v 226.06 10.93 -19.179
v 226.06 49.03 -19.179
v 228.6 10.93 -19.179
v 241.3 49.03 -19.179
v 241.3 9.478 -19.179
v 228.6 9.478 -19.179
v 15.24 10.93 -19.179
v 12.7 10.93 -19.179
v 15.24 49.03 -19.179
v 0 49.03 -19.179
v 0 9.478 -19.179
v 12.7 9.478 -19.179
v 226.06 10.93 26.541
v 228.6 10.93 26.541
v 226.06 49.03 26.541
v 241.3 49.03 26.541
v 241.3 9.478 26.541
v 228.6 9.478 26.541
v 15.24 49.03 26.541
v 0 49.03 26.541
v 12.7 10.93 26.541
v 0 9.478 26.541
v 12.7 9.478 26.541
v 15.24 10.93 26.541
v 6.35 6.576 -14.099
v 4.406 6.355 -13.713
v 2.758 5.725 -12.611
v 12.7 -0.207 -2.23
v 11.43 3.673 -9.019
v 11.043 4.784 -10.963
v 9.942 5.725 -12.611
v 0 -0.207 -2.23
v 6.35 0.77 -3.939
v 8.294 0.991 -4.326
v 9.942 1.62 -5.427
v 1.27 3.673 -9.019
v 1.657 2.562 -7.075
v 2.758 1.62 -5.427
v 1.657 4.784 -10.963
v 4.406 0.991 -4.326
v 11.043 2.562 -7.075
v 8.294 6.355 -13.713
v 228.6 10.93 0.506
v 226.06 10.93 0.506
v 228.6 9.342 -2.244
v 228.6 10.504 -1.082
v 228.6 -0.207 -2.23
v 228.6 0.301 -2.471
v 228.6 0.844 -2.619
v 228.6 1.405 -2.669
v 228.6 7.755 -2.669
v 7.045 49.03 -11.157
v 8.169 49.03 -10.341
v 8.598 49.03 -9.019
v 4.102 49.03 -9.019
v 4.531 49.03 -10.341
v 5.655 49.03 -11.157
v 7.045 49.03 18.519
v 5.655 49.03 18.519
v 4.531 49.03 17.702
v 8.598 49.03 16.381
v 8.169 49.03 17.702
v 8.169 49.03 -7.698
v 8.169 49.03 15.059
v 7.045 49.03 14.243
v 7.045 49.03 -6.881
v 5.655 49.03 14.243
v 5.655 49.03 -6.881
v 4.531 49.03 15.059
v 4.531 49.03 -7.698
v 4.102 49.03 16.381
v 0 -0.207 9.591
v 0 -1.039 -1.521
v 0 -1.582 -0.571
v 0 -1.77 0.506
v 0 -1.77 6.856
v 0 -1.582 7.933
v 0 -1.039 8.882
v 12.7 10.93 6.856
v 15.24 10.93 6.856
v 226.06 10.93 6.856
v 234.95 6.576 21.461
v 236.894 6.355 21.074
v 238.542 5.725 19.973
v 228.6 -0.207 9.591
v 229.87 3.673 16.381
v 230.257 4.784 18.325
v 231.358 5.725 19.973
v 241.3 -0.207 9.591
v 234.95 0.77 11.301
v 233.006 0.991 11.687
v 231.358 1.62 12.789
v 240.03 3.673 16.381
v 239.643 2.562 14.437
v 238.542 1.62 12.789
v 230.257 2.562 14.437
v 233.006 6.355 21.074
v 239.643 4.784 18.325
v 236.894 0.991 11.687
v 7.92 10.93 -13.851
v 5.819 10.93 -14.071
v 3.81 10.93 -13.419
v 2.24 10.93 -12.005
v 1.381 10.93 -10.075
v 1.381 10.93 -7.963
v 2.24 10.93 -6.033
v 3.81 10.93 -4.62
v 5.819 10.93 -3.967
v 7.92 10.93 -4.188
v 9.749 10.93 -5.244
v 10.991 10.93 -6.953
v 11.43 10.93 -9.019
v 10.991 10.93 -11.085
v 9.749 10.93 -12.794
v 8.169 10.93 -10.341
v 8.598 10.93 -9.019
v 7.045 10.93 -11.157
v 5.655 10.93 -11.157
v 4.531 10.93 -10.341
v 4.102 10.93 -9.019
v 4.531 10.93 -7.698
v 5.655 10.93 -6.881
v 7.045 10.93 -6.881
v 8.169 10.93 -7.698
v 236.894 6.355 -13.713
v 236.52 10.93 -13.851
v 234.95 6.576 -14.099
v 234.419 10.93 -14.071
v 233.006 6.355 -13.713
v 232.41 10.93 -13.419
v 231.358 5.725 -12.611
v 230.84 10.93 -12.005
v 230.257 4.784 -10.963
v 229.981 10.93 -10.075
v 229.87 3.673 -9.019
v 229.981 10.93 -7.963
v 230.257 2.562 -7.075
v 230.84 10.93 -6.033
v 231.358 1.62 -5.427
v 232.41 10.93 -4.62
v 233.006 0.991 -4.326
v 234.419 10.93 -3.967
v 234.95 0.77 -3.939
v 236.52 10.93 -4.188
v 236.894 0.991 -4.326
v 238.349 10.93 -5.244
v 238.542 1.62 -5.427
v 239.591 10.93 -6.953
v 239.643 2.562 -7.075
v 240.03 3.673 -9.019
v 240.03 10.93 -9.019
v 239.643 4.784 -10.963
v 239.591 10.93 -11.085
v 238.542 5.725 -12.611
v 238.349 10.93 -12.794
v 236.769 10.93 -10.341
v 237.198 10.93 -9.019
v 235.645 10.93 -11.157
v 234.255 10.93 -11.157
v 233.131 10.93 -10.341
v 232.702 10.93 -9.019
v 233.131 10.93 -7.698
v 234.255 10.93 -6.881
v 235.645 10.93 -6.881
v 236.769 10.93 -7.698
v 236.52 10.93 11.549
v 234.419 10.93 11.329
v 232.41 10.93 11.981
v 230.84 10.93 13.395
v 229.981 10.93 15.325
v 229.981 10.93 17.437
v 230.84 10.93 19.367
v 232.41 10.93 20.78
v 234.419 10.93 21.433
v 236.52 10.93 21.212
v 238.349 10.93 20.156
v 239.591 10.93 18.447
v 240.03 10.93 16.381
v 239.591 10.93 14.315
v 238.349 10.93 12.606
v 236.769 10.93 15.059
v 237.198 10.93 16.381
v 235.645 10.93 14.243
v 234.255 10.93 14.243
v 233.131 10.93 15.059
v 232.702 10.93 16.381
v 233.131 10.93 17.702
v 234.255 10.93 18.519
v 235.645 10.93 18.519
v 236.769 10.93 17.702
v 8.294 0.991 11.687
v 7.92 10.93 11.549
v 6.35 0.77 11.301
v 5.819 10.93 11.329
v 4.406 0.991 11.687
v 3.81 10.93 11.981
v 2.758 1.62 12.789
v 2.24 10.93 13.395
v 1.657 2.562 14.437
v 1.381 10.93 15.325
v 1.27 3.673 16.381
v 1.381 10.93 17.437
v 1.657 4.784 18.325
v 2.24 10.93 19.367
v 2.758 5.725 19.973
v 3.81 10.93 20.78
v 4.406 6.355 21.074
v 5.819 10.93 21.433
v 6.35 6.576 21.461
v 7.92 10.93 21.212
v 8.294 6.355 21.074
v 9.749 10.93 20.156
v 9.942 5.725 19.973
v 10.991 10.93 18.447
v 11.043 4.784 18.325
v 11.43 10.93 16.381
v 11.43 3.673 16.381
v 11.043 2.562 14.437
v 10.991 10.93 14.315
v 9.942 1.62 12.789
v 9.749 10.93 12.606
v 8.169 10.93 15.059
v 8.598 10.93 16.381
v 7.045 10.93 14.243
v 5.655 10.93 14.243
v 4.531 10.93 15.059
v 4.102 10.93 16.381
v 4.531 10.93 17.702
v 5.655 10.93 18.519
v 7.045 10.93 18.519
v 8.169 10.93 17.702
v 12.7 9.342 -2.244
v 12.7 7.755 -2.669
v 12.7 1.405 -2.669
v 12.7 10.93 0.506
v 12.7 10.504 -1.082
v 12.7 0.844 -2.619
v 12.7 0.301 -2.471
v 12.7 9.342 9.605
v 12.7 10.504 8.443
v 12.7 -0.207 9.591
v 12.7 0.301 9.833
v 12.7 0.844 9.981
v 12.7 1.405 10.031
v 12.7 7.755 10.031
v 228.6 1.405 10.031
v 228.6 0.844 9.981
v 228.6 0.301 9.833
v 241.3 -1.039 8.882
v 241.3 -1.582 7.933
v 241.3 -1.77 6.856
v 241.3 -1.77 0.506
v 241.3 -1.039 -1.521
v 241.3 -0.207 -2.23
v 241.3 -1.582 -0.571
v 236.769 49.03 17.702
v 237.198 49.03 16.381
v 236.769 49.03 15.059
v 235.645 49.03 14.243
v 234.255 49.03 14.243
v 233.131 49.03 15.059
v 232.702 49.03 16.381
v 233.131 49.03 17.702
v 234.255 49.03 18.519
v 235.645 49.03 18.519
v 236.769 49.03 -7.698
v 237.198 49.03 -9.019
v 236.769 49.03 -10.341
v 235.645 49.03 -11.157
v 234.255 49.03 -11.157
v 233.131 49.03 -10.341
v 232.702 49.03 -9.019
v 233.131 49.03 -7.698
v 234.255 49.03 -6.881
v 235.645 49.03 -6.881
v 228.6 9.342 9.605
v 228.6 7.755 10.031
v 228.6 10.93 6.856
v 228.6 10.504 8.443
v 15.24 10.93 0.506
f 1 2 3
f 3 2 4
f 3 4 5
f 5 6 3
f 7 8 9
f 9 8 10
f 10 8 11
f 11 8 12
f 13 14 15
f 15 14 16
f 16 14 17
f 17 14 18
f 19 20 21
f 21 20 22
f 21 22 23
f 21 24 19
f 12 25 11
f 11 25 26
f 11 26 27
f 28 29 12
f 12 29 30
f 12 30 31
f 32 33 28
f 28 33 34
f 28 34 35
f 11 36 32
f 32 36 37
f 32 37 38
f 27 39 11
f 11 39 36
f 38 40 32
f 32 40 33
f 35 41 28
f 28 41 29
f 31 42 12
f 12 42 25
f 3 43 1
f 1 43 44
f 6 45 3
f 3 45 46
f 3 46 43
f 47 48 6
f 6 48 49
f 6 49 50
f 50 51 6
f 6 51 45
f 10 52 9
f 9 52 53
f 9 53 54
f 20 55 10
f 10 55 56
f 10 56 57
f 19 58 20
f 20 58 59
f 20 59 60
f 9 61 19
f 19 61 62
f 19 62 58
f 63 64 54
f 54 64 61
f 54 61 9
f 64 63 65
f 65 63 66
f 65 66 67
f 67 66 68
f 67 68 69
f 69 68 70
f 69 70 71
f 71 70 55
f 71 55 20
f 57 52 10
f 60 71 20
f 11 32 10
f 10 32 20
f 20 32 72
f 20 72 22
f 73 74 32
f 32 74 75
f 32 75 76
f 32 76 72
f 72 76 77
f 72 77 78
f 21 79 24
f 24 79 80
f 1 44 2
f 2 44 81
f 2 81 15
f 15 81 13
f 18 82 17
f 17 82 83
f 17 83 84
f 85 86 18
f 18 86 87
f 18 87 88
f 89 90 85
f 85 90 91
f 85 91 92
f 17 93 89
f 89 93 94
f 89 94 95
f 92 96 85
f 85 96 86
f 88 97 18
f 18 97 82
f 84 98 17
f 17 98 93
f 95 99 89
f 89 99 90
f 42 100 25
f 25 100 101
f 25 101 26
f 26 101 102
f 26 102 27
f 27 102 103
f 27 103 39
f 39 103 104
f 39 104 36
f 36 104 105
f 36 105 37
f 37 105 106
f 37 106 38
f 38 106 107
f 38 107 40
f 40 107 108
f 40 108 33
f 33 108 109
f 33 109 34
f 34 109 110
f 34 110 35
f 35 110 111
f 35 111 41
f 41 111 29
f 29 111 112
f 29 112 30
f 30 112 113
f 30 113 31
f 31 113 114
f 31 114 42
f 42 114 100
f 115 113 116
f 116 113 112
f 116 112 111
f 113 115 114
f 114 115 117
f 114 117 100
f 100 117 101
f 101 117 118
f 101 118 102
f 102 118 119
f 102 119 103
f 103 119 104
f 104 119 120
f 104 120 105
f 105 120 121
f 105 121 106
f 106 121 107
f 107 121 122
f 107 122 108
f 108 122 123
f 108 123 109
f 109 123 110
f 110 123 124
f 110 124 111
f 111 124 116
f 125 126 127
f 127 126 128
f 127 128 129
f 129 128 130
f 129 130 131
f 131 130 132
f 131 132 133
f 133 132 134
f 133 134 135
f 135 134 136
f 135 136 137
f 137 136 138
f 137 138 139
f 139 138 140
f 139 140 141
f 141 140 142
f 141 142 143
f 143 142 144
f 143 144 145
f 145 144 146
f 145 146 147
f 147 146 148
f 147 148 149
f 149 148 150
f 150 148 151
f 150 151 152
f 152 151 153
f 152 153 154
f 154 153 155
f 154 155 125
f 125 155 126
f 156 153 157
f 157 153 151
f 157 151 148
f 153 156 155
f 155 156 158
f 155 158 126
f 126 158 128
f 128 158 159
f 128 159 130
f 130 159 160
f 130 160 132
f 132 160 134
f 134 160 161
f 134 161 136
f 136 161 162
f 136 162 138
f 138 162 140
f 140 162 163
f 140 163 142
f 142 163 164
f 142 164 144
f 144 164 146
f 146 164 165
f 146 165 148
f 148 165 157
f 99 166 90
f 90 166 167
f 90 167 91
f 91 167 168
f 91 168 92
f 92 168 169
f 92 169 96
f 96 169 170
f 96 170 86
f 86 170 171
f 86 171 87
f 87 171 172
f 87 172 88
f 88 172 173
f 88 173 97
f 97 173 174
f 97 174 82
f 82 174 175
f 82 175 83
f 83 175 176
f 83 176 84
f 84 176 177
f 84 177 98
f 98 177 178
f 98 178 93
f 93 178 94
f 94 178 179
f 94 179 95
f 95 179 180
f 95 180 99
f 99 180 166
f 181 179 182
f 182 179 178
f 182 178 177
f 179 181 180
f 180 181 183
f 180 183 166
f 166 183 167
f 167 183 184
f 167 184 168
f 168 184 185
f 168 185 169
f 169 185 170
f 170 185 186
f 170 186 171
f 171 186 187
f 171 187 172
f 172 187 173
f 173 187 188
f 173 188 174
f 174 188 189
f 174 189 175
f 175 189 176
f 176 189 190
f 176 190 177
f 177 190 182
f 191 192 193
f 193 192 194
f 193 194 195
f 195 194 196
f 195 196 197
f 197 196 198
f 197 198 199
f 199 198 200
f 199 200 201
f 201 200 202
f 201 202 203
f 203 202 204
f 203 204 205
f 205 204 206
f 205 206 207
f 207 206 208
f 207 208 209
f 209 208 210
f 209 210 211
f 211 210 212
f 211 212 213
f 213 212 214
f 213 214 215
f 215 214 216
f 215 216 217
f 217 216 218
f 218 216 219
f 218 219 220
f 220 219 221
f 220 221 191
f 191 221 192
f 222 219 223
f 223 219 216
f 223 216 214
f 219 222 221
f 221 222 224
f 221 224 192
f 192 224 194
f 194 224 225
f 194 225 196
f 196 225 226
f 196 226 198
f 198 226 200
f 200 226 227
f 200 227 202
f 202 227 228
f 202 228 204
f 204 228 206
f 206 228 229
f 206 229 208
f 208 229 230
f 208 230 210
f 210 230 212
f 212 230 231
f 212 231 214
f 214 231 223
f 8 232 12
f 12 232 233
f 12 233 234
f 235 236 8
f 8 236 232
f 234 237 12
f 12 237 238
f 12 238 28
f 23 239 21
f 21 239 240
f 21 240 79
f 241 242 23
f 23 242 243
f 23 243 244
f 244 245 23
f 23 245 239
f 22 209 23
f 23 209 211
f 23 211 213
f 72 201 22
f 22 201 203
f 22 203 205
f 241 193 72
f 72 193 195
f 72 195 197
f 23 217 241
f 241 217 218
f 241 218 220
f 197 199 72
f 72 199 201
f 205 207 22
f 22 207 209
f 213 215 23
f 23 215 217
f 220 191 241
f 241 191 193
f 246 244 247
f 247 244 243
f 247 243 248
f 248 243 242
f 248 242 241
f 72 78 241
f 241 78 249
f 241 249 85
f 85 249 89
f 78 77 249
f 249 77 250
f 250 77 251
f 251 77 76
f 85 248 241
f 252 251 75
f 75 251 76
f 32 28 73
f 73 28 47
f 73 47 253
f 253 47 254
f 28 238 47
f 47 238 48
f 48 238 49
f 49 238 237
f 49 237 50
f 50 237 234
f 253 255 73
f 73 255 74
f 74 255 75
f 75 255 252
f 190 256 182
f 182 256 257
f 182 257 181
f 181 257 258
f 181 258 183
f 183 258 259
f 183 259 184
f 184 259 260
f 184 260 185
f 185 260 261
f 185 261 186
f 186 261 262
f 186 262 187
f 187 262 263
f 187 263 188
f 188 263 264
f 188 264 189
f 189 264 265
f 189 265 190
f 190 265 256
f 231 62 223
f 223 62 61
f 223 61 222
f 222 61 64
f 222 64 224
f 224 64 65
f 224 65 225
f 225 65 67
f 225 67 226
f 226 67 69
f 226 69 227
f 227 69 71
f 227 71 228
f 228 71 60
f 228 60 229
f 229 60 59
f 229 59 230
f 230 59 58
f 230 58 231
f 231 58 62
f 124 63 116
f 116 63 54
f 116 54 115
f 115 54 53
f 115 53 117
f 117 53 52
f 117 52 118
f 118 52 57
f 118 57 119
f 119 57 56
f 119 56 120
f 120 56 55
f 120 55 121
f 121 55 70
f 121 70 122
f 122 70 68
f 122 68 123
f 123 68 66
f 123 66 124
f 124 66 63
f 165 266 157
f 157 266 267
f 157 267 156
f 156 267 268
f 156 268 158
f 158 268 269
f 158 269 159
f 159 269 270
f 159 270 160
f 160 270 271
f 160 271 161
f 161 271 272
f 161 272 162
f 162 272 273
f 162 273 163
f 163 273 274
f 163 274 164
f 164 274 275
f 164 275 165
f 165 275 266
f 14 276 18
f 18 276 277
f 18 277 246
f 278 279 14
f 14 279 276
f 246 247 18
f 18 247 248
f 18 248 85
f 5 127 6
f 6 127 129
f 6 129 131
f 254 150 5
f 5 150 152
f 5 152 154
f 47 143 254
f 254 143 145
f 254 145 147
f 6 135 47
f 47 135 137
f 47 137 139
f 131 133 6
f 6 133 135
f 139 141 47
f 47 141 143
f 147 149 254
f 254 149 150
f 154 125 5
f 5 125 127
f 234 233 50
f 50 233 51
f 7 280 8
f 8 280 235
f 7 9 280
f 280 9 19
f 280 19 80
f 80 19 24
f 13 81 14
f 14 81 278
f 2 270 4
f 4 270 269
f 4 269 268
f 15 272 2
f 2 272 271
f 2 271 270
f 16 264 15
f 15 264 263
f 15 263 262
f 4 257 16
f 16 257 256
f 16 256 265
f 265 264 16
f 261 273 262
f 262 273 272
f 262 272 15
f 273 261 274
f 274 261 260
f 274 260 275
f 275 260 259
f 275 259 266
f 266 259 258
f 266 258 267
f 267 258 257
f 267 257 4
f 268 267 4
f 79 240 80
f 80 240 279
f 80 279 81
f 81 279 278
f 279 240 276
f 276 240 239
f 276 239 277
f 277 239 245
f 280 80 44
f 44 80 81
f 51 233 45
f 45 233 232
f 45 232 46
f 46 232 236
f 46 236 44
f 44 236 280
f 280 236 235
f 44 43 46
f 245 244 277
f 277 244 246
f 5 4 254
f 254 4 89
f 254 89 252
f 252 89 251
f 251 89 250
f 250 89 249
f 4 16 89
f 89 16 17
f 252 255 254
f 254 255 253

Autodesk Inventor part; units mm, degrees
ref_plane "YZ Plane" through (0, 0, 0) normal (1, 0, 0) x (0, 1, 0)
ref_plane "XZ Plane" through (0, 0, 0) normal (0, 1, 0) x (-1, 0, 0)
ref_plane "XY Plane" through (0, 0, 0) normal (0, 0, 1) x (1, 0, 0)
sketch "Sketch1" plane through (0, 0, 0) normal (1, 0, 0) x (0, 1, 0)
  line L0 (7.7549, 10.0308) -> (1.4049, 10.0308)
  line L1 (-1.7701, 6.8558) -> (-1.7701, 0.5058)
  line L2 (1.4049, -2.6692) -> (7.7549, -2.6692)
  line L3 (10.9299, 0.5058) -> (10.9299, 6.8558)
  arc A0 (10.9299, 6.8558) -> (7.7549, 10.0308) centre (7.7549, 6.8558) ccw
  arc A1 (7.7549, -2.6692) -> (10.9299, 0.5058) centre (7.7549, 0.5058) ccw
  arc A2 (-1.7701, 0.5058) -> (1.4049, -2.6692) centre (1.4049, 0.5058) ccw
  arc A3 (1.4049, 10.0308) -> (-1.7701, 6.8558) centre (1.4049, 6.8558) ccw
  point P0 (0, 0)
  point P1 (10.9299, 10.0308)
  point P2 (-1.7701, -2.6692)
  point P3 (-1.7701, 10.0308)
  dimension "d0" = 12.7
  dimension "d1" = 12.7
  dimension "d2" = 3.175
extrude "Extrusion1" add sketch "Sketch1" along normal blind 241.3
sketch "Sketch2" plane through (0, 10.9299, 6.8558) normal (0, 1, 0) x (1, 0, 0)
  line L0 (0, -22.225) -> (15.24, -22.225)
  line L1 (15.24, -22.225) -> (15.24, 28.575)
  line L2 (15.24, 28.575) -> (0, 28.575)
  line L3 (0, 28.575) -> (0, -22.225)
  line L4 (0, -3.175) -> (241.3, -3.175) projected
  line L5 (0, 9.525) -> (241.3, 9.525) projected
  line L6 (226.06, -22.225) -> (241.3, -22.225)
  line L7 (241.3, -22.225) -> (241.3, 28.575)
  line L8 (241.3, 28.575) -> (226.06, 28.575)
  line L9 (226.06, 28.575) -> (226.06, -22.225)
  line L10 (241.3, 6.35) -> (241.3, 0) projected
  point P0 (0, 6.8558)
  dimension "d5" = 19.05
  dimension "d6" = 19.05
  dimension "d7" = 15.24
  dimension "d8" = 0
  dimension "d9" = 19.05
  dimension "d10" = 19.05
  dimension "d11" = 15.24
extrude "Extrusion2" add sketch "Sketch2" along normal blind 38.1 contours L3 L4 L1 L0 | L3 L5 L1 L4 | L3 L2 L1 L5 | L9 L5 L7 L4 | L4 L7 L6 L9 | L9 L8 L7 L5
sketch "Sketch4" plane through (241.3, 0, 0) normal (1, 0, 0) x (0, 0, -1)
  line L0 (-29.0808, 10.9299) -> (-6.8558, 10.9299) projected
  line L1 (-0.5058, 10.9299) -> (21.7192, 10.9299) projected
  line L2 (-6.8558, -1.7701) -> (-0.5058, -1.7701) projected
  line L3 (-6.8558, -1.7701) -> (-29.0808, 10.9299)
  line L4 (-6.8558, -1.7701) -> (-0.5058, -1.7701) projected
  line L5 (-0.5058, -1.7701) -> (21.7192, 10.9299)
  line L6 (-0.5058, -1.7701) -> (-6.8558, -1.7701)
  line L7 (-6.8558, 10.9299) -> (-29.0808, 10.9299) projected
  line L8 (21.7192, 10.9299) -> (-29.0808, 10.9299)
  point P0 (0, 0)
extrude "Extrusion3" add sketch "Sketch4" against normal blind 12.7
sketch "Sketch3" plane through (0, 49.0299, 6.8558) normal (0, 1, 0) x (1, 0, 0)
  line L0 (0, -22.225) -> (15.24, -22.225) projected
  line L1 (0, 28.575) -> (0, -22.225) projected
  line L2 (241.3, -22.225) -> (241.3, 28.575) projected
  line L3 (241.3, 28.575) -> (226.06, 28.575) projected
  line L4 (226.06, -22.225) -> (241.3, -22.225) projected
  point P0 (0, 6.8558)
  point P1 (6.35, -9.525)
  point P2 (6.35, 15.875)
  point P3 (234.95, -9.525)
  point P4 (234.95, 15.875)
  dimension "d14" = 25.4
  dimension "d15" = 12.7
  dimension "d16" = 0
  dimension "d17" = 6.35
  dimension "d18" = 0
  dimension "d19" = 6.35
  dimension "d20" = 12.7
  dimension "d21" = 12.7
hole "Hole1" at (6.35, 49.0299, 16.3808) at (6.35, 49.0299, -9.0192) at (234.95, 49.0299, 16.3808) at (234.95, 49.0299, -9.0192) direction (0, -1, 0) diameter 4.4958 depth 25.4 tip angle 118 clearance for "Flat Head Machine Screw (82)" size "#8" standard "Ansi Unified Screw Threads"
sketch "Sketch5" plane through (0, 0, 0) normal (-1, 0, 0) x (0, 0, 1)
  line L0 (6.8558, -1.7701) -> (0.5058, -1.7701) projected
  line L1 (6.8558, 10.9299) -> (29.0808, 10.9299) projected
  line L2 (-21.7192, 10.9299) -> (0.5058, 10.9299) projected
  line L3 (-21.7192, 10.9299) -> (-2.2296, -0.2071) projected
  line L4 (29.0808, 10.9299) -> (-21.7192, 10.9299)
  line L5 (-21.7192, 10.9299) -> (0.5058, -1.7701)
  line L6 (6.8558, -1.7701) -> (0.5058, -1.7701) projected
  line L7 (29.0808, 10.9299) -> (29.0808, 49.0299) projected
  line L8 (6.8558, -1.7701) -> (29.0808, 10.9299)
  point P0 (0, 0)
extrude "Extrusion4" add sketch "Sketch5" against normal blind 12.7
sketch "Sketch6" plane through (0, 49.0299, 6.8558) normal (0, 1, 0) x (1, 0, 0)
  circle A0 centre (6.35, -9.525) radius 2.2479 projected
  circle A1 centre (6.35, 15.875) radius 2.2479 projected
  circle A2 centre (234.95, -9.525) radius 2.2479 projected
  circle A3 centre (234.95, 15.875) radius 2.2479 projected
  circle A4 centre (234.95, -9.525) radius 2.2479 projected
  point P0 (0, 6.8558)
hole "Hole2" at (234.95, 49.0299, 16.3808) at (234.95, 49.0299, -9.0192) at (6.35, 49.0299, -9.0192) at (6.35, 49.0299, 16.3808) direction (0, -1, 0) diameter 4.4958 end through all clearance for "Flat Head Machine Screw (82)" size "#8" standard "Ansi Unified Screw Threads"
sketch "Sketch7" plane through (0, -1.7701, 0.5058) normal (0, -1, 0) x (1, 0, 0)
  circle A0 centre (6.35, -9.525) radius 2.2479 projected
  circle A1 centre (6.35, 15.875) radius 2.2479 projected
  circle A2 centre (234.95, 15.875) radius 2.2479 projected
  circle A3 centre (234.95, -9.525) radius 2.2479 projected
  circle A4 centre (234.95, -9.525) radius 5.08
  circle A5 centre (234.95, 15.875) radius 5.08
  circle A6 centre (6.35, -9.525) radius 5.08
  circle A7 centre (6.35, 15.875) radius 5.08
  point P0 (0, -0.5058)
  dimension "d40" = 10.16
  dimension "d41" = 10.16
  dimension "d42" = 10.16
  dimension "d43" = 10.16
extrude "Extrusion5" cut sketch "Sketch7" against normal blind 12.7
sketch "Sketch8" plane through (0, 49.0299, 6.8558) normal (0, 1, 0) x (1, 0, 0)
  line L0 (261.8512, -57.5381) -> (-18.787, -57.5381)
  line L1 (-18.787, -57.5381) -> (-18.787, -19.685)
  line L2 (-18.787, -19.685) -> (261.8512, -19.685)
  line L3 (261.8512, -19.685) -> (261.8512, -57.5381)
  line L4 (261.8512, 26.035) -> (-15.1591, 26.035)
  line L5 (-15.1591, 26.035) -> (-15.1591, 48.4462)
  line L6 (-15.1591, 48.4462) -> (261.8512, 48.4462)
  line L7 (261.8512, 48.4462) -> (261.8512, 26.035)
  line L8 (226.06, -22.225) -> (241.3, -22.225) projected
  line L9 (241.3, 28.575) -> (226.06, 28.575) projected
  point P0 (0, 6.8558)
  dimension "d46" = 2.54
  dimension "d47" = 2.54
extrude "Extrusion6" cut sketch "Sketch8" against normal blind 71.4375
properties part number "Handle"
